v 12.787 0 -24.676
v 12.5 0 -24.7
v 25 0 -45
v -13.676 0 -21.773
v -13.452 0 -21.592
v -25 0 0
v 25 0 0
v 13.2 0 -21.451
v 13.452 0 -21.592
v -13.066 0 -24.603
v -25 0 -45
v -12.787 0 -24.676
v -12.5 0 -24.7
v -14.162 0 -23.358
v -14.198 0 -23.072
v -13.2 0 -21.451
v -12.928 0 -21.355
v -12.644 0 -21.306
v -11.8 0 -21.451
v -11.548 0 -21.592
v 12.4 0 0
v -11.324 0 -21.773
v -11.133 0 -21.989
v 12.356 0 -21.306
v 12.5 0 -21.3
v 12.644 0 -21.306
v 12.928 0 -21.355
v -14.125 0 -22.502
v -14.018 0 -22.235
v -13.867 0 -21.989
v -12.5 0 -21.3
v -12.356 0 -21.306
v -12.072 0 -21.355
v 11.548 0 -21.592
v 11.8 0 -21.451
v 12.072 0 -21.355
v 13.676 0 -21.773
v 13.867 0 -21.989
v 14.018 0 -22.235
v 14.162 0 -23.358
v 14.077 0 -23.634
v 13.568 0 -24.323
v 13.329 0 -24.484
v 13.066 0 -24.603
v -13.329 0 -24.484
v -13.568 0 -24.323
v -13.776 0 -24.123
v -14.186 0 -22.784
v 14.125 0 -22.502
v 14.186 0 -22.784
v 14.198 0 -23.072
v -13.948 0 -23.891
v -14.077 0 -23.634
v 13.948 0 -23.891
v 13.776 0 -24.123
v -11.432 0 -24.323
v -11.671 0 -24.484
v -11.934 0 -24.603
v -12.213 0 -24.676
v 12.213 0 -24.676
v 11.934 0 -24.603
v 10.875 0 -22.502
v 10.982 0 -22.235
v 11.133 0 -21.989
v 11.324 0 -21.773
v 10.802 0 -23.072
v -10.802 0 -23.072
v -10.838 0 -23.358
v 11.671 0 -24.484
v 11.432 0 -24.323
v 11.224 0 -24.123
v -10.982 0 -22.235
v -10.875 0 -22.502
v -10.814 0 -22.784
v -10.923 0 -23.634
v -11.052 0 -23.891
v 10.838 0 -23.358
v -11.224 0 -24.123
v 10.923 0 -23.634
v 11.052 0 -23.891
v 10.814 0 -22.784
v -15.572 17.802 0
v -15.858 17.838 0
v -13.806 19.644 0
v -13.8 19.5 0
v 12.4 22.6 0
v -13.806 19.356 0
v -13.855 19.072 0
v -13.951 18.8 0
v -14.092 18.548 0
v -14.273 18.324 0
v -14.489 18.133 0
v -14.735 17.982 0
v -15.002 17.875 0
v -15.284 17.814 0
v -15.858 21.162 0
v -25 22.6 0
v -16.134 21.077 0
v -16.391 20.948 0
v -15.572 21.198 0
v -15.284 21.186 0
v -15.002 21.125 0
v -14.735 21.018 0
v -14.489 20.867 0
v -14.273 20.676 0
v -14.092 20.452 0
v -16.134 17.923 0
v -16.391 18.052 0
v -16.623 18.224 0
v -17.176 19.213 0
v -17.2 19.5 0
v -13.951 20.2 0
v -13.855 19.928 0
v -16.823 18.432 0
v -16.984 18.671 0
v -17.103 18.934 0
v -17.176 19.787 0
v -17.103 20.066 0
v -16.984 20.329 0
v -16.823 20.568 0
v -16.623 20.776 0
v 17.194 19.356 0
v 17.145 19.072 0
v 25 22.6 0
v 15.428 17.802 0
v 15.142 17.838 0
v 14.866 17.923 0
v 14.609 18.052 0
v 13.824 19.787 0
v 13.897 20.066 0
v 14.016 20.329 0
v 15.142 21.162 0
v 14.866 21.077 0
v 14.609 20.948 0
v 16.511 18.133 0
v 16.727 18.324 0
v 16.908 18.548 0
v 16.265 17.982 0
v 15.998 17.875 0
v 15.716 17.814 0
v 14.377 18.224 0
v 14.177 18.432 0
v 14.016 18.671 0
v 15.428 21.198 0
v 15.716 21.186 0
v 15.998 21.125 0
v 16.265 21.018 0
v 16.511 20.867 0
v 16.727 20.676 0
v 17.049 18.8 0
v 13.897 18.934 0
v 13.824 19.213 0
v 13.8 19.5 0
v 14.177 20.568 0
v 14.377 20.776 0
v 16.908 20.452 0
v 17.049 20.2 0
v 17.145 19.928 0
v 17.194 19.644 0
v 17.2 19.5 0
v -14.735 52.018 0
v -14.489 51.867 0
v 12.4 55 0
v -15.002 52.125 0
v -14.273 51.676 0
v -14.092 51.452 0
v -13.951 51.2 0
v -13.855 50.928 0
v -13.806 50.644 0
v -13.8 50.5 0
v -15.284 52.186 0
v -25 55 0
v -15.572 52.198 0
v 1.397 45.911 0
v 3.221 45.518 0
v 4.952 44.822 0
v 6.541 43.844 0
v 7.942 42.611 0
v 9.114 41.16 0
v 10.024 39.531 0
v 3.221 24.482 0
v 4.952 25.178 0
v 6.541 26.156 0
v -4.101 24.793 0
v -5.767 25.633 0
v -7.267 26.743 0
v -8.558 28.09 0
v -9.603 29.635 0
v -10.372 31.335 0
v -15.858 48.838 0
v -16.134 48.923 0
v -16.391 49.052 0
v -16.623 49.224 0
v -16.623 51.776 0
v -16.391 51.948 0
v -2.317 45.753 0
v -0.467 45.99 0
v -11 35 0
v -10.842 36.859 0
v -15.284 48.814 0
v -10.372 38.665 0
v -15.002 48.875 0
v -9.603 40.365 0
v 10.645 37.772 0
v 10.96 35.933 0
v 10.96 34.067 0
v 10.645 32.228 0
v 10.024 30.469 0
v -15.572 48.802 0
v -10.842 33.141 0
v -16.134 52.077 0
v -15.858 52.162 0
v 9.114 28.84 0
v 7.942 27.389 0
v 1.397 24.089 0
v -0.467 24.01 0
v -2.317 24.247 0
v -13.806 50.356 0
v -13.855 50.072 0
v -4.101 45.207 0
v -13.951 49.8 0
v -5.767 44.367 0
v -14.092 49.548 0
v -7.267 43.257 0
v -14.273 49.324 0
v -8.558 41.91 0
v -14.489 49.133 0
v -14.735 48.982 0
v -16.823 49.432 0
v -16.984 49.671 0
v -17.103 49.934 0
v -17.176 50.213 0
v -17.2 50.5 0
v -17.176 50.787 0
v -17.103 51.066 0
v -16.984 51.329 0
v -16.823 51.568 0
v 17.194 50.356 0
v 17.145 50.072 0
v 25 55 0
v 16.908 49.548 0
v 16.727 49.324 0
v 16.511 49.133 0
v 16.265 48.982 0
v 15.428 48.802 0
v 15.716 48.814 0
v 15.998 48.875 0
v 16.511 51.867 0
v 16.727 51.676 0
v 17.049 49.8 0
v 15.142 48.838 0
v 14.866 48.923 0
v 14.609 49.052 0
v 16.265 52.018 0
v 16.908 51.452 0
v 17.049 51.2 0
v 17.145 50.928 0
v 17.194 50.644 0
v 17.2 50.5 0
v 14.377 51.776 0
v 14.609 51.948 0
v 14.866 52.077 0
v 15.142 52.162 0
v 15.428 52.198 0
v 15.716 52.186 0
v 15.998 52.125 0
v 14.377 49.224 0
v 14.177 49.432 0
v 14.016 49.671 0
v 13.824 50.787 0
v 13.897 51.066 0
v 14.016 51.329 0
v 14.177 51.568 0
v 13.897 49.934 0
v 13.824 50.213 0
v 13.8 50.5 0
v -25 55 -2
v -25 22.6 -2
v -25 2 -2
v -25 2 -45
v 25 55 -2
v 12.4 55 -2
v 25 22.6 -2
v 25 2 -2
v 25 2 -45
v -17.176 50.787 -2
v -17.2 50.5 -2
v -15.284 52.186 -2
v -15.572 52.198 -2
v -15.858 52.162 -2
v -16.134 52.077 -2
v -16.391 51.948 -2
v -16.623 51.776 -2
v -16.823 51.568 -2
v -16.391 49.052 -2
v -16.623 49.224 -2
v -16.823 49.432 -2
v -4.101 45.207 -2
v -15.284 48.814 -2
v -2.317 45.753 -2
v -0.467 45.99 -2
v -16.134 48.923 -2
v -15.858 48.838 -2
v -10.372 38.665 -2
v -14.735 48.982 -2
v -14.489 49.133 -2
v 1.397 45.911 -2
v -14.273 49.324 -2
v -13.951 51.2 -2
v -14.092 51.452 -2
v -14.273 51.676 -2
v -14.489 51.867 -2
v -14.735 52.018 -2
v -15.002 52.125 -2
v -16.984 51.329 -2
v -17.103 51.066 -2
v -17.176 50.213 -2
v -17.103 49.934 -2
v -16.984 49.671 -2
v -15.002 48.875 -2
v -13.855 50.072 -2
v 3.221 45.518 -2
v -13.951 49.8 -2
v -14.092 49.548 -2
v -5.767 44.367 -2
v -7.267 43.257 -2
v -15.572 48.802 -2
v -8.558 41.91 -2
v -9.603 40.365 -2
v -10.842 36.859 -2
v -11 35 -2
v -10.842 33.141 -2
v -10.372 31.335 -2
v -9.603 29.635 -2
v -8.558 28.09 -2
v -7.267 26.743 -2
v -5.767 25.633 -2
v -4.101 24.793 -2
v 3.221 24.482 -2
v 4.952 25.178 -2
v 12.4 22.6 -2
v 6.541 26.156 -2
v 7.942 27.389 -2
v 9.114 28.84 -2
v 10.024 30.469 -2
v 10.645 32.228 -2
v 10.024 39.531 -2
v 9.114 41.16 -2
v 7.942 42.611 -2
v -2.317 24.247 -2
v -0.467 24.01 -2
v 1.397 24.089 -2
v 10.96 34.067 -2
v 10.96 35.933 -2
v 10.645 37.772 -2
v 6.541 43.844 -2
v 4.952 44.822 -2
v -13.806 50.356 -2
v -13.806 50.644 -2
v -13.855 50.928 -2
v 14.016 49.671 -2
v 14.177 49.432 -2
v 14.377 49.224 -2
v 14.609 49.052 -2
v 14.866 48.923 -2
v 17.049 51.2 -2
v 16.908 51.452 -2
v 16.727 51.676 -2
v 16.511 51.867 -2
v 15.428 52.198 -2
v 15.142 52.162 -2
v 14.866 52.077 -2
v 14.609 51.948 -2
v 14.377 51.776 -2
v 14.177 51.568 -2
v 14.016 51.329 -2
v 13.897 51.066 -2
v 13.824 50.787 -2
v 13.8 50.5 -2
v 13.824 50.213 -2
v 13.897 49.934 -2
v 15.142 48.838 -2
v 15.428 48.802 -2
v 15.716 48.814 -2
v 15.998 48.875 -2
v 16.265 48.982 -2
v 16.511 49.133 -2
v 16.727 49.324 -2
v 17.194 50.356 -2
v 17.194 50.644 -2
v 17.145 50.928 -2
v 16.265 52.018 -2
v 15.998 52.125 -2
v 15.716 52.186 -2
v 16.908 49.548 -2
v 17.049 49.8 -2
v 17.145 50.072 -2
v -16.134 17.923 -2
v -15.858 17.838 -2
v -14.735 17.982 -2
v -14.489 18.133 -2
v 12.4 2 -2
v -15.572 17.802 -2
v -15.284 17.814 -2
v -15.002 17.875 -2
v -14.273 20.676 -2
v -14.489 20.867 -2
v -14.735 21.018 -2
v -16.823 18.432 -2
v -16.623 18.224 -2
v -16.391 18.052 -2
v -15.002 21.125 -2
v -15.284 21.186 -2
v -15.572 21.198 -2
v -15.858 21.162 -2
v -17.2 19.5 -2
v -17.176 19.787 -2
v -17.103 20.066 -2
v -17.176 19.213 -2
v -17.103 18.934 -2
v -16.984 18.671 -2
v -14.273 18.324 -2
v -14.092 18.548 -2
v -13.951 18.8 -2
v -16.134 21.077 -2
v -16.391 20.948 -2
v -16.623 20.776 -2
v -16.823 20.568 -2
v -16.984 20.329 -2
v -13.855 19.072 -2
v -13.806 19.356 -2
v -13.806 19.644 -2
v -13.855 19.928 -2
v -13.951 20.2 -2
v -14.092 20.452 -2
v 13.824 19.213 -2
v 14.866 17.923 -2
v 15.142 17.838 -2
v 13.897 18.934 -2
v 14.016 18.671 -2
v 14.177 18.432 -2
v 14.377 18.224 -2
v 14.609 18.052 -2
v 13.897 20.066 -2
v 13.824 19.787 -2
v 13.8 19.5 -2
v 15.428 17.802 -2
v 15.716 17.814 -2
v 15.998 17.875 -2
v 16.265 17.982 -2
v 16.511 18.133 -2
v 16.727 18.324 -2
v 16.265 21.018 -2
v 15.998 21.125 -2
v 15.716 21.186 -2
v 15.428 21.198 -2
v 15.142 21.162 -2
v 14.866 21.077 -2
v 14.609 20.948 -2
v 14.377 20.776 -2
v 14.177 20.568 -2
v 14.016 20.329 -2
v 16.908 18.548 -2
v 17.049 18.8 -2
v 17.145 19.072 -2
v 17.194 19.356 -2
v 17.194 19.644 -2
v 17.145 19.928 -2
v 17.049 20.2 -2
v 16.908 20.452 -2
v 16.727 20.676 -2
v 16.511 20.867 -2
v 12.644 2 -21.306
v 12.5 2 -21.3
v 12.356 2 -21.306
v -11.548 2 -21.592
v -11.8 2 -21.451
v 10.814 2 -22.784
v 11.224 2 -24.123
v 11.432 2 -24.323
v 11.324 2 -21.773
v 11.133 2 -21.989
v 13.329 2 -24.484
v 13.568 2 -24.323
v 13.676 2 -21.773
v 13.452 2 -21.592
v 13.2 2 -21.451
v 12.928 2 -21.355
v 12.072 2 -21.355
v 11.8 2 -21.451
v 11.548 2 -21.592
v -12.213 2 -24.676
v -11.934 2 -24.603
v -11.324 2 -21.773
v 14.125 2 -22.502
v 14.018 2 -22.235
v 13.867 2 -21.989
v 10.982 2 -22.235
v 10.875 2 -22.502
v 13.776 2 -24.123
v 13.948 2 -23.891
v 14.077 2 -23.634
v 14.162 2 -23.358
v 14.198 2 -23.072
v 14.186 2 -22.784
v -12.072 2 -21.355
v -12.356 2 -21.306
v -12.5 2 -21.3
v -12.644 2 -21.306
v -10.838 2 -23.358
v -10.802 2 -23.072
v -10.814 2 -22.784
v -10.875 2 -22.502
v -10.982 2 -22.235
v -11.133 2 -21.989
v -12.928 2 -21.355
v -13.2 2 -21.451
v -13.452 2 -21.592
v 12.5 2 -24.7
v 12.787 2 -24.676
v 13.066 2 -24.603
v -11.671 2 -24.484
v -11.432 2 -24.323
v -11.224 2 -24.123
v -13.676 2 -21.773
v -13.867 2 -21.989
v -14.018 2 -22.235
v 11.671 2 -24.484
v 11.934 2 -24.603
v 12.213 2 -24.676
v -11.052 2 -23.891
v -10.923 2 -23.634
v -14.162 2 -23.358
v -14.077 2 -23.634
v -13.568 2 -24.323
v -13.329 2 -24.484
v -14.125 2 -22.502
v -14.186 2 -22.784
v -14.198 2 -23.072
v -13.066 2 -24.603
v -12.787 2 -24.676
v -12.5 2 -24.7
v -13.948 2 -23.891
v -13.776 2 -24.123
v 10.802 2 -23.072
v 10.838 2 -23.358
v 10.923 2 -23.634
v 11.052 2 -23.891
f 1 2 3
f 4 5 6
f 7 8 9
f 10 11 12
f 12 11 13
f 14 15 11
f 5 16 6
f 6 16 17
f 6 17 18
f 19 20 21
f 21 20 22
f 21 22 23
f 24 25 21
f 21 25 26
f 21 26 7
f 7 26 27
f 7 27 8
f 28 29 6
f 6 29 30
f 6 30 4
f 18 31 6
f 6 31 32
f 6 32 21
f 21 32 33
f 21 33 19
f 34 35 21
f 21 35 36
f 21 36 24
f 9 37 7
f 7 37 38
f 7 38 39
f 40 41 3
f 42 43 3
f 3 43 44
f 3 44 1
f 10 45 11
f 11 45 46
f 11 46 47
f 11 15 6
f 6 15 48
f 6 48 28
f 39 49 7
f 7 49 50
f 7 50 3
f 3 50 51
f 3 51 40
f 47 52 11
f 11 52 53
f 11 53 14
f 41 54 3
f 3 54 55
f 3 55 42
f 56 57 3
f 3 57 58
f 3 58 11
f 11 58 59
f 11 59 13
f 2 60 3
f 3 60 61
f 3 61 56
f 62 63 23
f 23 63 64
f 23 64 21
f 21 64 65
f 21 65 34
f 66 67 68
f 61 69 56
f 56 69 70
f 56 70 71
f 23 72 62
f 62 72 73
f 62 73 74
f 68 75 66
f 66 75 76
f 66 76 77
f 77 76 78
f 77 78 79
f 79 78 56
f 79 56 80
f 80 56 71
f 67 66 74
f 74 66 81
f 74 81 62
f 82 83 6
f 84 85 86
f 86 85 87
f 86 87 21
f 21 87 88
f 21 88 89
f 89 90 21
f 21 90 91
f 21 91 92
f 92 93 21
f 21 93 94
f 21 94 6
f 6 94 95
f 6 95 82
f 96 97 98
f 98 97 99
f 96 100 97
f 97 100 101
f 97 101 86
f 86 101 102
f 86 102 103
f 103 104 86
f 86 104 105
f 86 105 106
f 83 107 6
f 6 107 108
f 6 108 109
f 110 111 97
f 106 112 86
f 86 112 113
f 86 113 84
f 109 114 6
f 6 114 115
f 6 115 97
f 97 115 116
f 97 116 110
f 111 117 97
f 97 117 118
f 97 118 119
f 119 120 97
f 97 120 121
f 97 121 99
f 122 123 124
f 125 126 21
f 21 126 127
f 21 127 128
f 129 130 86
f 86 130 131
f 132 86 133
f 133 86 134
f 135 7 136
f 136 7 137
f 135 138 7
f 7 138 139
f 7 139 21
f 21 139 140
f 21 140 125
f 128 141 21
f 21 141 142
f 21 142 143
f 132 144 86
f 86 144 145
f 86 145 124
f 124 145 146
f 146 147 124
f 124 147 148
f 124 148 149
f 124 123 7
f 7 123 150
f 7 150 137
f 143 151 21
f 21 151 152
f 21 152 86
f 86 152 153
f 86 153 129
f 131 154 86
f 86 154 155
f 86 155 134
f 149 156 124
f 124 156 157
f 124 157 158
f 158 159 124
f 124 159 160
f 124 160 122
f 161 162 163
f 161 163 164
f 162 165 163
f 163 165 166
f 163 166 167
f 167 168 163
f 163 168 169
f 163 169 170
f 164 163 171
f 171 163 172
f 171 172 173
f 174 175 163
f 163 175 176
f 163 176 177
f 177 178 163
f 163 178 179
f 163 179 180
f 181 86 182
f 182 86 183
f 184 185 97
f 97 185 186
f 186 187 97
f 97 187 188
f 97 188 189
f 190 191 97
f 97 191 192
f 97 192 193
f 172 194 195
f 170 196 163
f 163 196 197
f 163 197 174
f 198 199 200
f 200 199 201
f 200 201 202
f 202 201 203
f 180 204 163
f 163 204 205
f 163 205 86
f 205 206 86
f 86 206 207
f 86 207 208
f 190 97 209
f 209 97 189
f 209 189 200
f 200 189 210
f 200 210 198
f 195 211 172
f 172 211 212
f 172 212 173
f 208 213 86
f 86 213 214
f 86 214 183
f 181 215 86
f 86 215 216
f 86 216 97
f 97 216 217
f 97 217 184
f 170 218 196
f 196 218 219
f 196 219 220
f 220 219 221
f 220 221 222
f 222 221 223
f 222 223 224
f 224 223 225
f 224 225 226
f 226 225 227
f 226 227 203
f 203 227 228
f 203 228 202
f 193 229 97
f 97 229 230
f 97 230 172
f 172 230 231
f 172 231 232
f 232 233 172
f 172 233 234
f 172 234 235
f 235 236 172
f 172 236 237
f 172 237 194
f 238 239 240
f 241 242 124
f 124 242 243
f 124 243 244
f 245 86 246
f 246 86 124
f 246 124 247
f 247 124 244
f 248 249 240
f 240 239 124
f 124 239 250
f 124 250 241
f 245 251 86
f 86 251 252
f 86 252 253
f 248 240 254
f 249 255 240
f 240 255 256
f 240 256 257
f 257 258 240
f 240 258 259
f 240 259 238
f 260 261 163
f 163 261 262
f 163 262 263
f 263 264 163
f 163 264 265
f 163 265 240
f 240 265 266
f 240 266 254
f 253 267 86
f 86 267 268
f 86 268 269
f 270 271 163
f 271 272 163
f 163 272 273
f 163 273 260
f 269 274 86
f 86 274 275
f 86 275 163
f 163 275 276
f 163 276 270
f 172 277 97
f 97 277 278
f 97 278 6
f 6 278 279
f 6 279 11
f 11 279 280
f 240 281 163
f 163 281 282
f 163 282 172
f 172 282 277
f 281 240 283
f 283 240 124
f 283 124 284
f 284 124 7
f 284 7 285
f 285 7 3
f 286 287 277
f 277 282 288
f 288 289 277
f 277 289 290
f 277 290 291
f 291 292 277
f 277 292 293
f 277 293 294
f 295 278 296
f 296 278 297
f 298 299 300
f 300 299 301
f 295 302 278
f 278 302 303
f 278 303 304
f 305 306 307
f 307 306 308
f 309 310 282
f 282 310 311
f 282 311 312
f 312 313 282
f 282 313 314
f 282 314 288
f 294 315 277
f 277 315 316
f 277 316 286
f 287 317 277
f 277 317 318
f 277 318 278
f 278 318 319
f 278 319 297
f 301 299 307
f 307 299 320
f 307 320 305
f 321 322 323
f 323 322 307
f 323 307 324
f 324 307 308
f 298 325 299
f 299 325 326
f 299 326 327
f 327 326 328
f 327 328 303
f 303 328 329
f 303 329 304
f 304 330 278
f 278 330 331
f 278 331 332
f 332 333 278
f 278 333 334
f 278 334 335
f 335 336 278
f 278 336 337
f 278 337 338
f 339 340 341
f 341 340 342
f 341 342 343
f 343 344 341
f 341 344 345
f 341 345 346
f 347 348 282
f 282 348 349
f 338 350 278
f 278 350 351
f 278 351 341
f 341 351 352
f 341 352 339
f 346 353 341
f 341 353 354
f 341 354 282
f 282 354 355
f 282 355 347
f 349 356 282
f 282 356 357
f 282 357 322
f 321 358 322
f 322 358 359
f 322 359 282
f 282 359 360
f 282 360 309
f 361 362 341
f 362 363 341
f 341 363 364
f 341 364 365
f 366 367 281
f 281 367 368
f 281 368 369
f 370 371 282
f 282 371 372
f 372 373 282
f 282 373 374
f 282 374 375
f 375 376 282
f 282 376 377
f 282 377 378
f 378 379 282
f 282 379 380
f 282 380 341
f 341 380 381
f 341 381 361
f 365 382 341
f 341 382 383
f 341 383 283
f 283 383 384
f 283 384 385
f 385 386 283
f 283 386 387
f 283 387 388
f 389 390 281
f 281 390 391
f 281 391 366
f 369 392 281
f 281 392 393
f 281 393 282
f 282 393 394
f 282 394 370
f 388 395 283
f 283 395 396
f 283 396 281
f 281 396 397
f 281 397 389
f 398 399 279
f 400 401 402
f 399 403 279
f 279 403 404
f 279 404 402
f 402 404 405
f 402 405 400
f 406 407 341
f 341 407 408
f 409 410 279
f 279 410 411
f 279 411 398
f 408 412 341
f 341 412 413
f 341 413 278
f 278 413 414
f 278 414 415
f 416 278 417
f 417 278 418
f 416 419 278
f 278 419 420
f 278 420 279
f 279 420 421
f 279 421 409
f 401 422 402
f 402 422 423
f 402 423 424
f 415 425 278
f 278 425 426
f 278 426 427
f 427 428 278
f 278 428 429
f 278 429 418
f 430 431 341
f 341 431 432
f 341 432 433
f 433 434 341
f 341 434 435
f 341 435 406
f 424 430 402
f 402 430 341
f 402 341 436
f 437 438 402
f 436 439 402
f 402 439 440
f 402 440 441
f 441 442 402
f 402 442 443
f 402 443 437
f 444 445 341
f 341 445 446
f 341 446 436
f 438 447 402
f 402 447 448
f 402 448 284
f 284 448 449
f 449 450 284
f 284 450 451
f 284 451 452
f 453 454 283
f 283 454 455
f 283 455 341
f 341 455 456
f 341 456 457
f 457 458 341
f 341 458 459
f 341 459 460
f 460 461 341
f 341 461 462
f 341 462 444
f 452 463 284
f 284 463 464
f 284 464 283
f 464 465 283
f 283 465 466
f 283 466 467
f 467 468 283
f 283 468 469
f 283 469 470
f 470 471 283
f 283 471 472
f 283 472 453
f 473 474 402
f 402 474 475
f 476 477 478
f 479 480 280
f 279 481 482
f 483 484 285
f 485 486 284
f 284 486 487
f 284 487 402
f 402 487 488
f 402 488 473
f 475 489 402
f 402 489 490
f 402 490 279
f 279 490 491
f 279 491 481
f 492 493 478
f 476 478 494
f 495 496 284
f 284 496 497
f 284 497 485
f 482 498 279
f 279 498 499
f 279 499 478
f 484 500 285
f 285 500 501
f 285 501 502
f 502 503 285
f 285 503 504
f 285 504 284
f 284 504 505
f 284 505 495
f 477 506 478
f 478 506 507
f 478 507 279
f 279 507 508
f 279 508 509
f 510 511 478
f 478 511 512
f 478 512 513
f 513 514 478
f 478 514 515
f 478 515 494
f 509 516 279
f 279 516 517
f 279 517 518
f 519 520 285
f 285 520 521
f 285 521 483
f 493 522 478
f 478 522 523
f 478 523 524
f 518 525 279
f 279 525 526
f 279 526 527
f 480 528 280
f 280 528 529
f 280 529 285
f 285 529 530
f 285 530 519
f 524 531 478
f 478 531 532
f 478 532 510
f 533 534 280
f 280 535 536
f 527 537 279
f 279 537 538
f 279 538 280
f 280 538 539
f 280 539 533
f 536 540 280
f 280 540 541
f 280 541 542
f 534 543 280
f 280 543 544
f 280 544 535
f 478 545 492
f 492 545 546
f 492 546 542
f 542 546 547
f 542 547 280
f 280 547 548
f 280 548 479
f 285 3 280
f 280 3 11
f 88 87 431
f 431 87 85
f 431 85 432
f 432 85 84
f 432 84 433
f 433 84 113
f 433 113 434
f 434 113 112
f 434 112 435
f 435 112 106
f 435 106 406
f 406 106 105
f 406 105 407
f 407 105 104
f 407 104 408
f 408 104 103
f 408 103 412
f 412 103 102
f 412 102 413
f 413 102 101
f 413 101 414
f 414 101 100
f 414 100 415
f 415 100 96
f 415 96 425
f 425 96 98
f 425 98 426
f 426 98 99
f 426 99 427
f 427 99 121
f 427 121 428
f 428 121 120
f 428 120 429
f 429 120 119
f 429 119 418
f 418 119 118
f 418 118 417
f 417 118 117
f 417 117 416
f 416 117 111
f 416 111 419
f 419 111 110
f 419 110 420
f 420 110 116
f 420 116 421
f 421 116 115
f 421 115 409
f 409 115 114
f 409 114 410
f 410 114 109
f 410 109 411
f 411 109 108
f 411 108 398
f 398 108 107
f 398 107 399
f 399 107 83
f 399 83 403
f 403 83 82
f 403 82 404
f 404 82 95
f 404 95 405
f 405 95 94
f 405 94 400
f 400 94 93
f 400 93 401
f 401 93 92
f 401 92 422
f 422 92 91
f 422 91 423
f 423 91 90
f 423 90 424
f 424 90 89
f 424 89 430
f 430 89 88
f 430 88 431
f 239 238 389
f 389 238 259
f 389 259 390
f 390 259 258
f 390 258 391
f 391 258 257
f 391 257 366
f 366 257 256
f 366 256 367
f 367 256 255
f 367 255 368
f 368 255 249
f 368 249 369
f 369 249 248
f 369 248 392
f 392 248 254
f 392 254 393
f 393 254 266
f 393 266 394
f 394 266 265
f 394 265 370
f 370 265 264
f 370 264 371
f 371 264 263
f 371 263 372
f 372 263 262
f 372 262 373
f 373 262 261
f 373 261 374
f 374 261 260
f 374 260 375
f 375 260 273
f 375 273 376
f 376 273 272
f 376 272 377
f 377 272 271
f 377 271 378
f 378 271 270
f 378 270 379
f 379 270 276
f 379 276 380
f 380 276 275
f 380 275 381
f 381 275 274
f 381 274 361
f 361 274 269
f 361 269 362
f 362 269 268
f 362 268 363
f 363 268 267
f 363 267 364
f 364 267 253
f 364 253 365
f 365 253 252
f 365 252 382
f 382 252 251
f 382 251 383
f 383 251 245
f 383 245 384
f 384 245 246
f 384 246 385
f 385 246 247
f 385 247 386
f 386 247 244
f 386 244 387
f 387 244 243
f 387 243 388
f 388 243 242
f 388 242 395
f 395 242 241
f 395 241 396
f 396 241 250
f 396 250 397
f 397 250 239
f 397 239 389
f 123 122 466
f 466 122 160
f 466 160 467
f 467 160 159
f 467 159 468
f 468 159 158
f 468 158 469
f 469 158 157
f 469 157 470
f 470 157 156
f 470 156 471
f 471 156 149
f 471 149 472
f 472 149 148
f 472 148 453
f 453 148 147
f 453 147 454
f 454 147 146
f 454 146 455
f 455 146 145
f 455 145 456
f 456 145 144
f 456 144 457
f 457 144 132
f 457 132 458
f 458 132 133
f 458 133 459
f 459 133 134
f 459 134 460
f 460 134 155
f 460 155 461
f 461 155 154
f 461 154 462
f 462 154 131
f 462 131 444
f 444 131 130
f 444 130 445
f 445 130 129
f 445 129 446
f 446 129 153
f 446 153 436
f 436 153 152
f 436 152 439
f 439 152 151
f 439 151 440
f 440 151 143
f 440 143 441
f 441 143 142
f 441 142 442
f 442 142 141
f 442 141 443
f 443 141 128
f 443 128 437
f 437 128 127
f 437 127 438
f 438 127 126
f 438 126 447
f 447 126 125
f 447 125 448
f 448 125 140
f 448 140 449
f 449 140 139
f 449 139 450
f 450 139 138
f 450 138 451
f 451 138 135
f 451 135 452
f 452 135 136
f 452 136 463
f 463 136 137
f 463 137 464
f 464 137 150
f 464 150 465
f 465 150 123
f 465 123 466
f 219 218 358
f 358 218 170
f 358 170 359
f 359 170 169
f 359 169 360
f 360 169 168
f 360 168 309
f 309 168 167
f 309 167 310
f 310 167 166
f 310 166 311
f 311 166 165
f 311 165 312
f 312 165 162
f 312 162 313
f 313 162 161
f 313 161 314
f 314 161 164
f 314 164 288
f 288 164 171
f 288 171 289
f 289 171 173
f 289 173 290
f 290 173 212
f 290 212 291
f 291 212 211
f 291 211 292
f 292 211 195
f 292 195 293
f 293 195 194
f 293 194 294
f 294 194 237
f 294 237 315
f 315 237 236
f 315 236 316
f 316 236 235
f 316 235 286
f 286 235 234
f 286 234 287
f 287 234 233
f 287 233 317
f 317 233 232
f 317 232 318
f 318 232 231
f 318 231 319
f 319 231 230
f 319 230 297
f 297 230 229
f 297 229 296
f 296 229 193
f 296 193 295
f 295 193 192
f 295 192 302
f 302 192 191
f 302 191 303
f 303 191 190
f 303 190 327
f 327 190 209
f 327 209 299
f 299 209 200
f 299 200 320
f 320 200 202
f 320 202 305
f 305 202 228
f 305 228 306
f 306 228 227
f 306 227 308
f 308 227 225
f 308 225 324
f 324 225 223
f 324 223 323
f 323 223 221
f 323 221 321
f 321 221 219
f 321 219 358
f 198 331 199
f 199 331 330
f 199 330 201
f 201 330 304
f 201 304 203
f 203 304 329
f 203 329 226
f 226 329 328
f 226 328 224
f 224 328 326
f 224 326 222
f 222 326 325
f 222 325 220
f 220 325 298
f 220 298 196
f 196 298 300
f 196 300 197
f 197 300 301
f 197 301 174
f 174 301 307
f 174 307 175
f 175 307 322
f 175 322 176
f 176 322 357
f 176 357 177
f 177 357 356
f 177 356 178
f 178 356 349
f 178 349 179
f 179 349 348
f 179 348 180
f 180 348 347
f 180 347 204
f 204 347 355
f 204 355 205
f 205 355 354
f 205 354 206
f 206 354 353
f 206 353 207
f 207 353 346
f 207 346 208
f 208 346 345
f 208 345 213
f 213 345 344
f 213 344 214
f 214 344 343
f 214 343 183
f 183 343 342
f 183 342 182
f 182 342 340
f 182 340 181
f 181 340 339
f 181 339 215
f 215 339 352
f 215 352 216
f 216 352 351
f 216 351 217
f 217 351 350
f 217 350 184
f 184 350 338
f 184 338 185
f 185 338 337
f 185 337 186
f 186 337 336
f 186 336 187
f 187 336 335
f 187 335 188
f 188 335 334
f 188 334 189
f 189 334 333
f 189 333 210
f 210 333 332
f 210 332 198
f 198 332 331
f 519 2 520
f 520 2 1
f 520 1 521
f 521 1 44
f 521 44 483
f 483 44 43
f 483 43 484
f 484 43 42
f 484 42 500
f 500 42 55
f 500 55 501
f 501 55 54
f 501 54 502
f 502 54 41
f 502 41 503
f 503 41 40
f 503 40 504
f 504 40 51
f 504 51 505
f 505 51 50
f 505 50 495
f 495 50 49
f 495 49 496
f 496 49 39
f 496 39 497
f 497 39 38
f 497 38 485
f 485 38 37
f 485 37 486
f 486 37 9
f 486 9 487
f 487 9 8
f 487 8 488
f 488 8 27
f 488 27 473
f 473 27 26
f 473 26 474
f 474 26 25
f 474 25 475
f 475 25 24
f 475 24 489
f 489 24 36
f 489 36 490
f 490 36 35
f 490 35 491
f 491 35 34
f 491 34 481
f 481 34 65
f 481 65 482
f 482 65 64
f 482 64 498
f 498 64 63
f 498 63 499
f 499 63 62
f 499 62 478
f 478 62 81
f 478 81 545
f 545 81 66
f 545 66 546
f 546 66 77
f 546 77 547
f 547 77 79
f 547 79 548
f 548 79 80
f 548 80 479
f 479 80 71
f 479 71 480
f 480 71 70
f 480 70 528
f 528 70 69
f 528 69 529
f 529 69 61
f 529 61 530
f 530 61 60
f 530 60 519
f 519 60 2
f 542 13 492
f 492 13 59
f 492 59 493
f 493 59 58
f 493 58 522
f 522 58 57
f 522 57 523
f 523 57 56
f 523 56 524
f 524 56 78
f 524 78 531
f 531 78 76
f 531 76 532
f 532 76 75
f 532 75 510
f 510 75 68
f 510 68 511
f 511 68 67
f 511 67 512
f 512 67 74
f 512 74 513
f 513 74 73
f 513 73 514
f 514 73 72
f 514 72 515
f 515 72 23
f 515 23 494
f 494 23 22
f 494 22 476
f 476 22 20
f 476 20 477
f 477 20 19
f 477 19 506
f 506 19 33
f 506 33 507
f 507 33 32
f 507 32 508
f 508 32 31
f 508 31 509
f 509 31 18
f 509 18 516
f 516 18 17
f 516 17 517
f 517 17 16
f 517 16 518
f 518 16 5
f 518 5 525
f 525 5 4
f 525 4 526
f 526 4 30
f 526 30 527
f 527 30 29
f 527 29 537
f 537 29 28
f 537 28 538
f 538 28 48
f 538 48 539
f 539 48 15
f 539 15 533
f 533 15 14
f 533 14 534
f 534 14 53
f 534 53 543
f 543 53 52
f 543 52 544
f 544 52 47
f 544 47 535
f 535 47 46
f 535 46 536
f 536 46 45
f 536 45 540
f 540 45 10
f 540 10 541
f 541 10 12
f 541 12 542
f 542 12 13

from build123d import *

# Parameters (mm, degrees)
SKETCH1_W                 = 50
SKETCH1_H                 = 55
BOSS_EXTRUDE1_DEPTH       = 2
SKETCH2_W                 = 50
SKETCH2_H                 = 2
BOSS_EXTRUDE2_DEPTH       = 45
CUT_EXTRUDE1_DEPTH        = 76.332595867
CUT_EXTRUDE1_DEPTH_BACK   = 76.332595867
SKETCH3_R                 = 1.7
LO_TAM_D22_DEPTH          = 76.332595867
LO_TAM_D22_DEPTH_BACK     = 76.332595867
SKETCH4_R                 = 11
HAI_LO_CHAN_M3_DEPTH      = 76.332595867
HAI_LO_CHAN_M3_DEPTH_BACK = 76.332595867
SKETCH5_R                 = 1.7


with BuildPart() as part:
    # Sketch1 → Boss-Extrude1 (new body)
    with BuildSketch(Plane.XY):
        with Locations((0, 27.5)):
            Rectangle(SKETCH1_W, SKETCH1_H)
    extrude(amount=-BOSS_EXTRUDE1_DEPTH)

    # Sketch2 → Boss-Extrude2 (add)
    with BuildSketch(Plane.XY):
        with Locations((0, 1)):
            Rectangle(SKETCH2_W, SKETCH2_H)
    extrude(amount=-BOSS_EXTRUDE2_DEPTH)

    # Sketch3 → Cut-Extrude1 (cut, two sides: drawn at the far end of the back side and taken through both)
    with BuildSketch(Plane.XY.offset(-CUT_EXTRUDE1_DEPTH_BACK)):
        with Locations(Location((-15.5, 19.5, 0), (0, 0, 180))):
            Circle(SKETCH3_R)
        with Locations(Location((-15.5, 50.5, 0), (0, 0, 180))):
            Circle(SKETCH3_R)
        with Locations(Location((15.5, 19.5, 0), (0, 0, 180))):
            Circle(SKETCH3_R)
        with Locations(Location((15.5, 50.5, 0), (0, 0, 180))):
            Circle(SKETCH3_R)
    extrude(amount=CUT_EXTRUDE1_DEPTH + CUT_EXTRUDE1_DEPTH_BACK, mode=Mode.SUBTRACT)

    # Sketch4 → Lo_tam_D22 (cut, two sides: drawn at the far end of the back side and taken through both)
    with BuildSketch(Plane.XY.offset(-LO_TAM_D22_DEPTH_BACK)):
        with Locations(Location((0, 35, 0), (0, 0, 180))):
            Circle(SKETCH4_R)
    extrude(amount=LO_TAM_D22_DEPTH + LO_TAM_D22_DEPTH_BACK, mode=Mode.SUBTRACT)

    # Sketch5 → Hai_lo_chan_M3 (cut, two sides: drawn at the far end of the back side and taken through both)
    with BuildSketch(Plane(origin=(0, 0, 0), x_dir=(1, 0, 0), z_dir=(0, 1, 0)).offset(-HAI_LO_CHAN_M3_DEPTH_BACK)):
        with Locations(Location((-12.5, 23, 0), (0, 0, 270))):
            Circle(SKETCH5_R)
        with Locations(Location((12.5, 23, 0), (0, 0, 270))):
            Circle(SKETCH5_R)
    extrude(amount=HAI_LO_CHAN_M3_DEPTH + HAI_LO_CHAN_M3_DEPTH_BACK, mode=Mode.SUBTRACT)


solid = part.part
